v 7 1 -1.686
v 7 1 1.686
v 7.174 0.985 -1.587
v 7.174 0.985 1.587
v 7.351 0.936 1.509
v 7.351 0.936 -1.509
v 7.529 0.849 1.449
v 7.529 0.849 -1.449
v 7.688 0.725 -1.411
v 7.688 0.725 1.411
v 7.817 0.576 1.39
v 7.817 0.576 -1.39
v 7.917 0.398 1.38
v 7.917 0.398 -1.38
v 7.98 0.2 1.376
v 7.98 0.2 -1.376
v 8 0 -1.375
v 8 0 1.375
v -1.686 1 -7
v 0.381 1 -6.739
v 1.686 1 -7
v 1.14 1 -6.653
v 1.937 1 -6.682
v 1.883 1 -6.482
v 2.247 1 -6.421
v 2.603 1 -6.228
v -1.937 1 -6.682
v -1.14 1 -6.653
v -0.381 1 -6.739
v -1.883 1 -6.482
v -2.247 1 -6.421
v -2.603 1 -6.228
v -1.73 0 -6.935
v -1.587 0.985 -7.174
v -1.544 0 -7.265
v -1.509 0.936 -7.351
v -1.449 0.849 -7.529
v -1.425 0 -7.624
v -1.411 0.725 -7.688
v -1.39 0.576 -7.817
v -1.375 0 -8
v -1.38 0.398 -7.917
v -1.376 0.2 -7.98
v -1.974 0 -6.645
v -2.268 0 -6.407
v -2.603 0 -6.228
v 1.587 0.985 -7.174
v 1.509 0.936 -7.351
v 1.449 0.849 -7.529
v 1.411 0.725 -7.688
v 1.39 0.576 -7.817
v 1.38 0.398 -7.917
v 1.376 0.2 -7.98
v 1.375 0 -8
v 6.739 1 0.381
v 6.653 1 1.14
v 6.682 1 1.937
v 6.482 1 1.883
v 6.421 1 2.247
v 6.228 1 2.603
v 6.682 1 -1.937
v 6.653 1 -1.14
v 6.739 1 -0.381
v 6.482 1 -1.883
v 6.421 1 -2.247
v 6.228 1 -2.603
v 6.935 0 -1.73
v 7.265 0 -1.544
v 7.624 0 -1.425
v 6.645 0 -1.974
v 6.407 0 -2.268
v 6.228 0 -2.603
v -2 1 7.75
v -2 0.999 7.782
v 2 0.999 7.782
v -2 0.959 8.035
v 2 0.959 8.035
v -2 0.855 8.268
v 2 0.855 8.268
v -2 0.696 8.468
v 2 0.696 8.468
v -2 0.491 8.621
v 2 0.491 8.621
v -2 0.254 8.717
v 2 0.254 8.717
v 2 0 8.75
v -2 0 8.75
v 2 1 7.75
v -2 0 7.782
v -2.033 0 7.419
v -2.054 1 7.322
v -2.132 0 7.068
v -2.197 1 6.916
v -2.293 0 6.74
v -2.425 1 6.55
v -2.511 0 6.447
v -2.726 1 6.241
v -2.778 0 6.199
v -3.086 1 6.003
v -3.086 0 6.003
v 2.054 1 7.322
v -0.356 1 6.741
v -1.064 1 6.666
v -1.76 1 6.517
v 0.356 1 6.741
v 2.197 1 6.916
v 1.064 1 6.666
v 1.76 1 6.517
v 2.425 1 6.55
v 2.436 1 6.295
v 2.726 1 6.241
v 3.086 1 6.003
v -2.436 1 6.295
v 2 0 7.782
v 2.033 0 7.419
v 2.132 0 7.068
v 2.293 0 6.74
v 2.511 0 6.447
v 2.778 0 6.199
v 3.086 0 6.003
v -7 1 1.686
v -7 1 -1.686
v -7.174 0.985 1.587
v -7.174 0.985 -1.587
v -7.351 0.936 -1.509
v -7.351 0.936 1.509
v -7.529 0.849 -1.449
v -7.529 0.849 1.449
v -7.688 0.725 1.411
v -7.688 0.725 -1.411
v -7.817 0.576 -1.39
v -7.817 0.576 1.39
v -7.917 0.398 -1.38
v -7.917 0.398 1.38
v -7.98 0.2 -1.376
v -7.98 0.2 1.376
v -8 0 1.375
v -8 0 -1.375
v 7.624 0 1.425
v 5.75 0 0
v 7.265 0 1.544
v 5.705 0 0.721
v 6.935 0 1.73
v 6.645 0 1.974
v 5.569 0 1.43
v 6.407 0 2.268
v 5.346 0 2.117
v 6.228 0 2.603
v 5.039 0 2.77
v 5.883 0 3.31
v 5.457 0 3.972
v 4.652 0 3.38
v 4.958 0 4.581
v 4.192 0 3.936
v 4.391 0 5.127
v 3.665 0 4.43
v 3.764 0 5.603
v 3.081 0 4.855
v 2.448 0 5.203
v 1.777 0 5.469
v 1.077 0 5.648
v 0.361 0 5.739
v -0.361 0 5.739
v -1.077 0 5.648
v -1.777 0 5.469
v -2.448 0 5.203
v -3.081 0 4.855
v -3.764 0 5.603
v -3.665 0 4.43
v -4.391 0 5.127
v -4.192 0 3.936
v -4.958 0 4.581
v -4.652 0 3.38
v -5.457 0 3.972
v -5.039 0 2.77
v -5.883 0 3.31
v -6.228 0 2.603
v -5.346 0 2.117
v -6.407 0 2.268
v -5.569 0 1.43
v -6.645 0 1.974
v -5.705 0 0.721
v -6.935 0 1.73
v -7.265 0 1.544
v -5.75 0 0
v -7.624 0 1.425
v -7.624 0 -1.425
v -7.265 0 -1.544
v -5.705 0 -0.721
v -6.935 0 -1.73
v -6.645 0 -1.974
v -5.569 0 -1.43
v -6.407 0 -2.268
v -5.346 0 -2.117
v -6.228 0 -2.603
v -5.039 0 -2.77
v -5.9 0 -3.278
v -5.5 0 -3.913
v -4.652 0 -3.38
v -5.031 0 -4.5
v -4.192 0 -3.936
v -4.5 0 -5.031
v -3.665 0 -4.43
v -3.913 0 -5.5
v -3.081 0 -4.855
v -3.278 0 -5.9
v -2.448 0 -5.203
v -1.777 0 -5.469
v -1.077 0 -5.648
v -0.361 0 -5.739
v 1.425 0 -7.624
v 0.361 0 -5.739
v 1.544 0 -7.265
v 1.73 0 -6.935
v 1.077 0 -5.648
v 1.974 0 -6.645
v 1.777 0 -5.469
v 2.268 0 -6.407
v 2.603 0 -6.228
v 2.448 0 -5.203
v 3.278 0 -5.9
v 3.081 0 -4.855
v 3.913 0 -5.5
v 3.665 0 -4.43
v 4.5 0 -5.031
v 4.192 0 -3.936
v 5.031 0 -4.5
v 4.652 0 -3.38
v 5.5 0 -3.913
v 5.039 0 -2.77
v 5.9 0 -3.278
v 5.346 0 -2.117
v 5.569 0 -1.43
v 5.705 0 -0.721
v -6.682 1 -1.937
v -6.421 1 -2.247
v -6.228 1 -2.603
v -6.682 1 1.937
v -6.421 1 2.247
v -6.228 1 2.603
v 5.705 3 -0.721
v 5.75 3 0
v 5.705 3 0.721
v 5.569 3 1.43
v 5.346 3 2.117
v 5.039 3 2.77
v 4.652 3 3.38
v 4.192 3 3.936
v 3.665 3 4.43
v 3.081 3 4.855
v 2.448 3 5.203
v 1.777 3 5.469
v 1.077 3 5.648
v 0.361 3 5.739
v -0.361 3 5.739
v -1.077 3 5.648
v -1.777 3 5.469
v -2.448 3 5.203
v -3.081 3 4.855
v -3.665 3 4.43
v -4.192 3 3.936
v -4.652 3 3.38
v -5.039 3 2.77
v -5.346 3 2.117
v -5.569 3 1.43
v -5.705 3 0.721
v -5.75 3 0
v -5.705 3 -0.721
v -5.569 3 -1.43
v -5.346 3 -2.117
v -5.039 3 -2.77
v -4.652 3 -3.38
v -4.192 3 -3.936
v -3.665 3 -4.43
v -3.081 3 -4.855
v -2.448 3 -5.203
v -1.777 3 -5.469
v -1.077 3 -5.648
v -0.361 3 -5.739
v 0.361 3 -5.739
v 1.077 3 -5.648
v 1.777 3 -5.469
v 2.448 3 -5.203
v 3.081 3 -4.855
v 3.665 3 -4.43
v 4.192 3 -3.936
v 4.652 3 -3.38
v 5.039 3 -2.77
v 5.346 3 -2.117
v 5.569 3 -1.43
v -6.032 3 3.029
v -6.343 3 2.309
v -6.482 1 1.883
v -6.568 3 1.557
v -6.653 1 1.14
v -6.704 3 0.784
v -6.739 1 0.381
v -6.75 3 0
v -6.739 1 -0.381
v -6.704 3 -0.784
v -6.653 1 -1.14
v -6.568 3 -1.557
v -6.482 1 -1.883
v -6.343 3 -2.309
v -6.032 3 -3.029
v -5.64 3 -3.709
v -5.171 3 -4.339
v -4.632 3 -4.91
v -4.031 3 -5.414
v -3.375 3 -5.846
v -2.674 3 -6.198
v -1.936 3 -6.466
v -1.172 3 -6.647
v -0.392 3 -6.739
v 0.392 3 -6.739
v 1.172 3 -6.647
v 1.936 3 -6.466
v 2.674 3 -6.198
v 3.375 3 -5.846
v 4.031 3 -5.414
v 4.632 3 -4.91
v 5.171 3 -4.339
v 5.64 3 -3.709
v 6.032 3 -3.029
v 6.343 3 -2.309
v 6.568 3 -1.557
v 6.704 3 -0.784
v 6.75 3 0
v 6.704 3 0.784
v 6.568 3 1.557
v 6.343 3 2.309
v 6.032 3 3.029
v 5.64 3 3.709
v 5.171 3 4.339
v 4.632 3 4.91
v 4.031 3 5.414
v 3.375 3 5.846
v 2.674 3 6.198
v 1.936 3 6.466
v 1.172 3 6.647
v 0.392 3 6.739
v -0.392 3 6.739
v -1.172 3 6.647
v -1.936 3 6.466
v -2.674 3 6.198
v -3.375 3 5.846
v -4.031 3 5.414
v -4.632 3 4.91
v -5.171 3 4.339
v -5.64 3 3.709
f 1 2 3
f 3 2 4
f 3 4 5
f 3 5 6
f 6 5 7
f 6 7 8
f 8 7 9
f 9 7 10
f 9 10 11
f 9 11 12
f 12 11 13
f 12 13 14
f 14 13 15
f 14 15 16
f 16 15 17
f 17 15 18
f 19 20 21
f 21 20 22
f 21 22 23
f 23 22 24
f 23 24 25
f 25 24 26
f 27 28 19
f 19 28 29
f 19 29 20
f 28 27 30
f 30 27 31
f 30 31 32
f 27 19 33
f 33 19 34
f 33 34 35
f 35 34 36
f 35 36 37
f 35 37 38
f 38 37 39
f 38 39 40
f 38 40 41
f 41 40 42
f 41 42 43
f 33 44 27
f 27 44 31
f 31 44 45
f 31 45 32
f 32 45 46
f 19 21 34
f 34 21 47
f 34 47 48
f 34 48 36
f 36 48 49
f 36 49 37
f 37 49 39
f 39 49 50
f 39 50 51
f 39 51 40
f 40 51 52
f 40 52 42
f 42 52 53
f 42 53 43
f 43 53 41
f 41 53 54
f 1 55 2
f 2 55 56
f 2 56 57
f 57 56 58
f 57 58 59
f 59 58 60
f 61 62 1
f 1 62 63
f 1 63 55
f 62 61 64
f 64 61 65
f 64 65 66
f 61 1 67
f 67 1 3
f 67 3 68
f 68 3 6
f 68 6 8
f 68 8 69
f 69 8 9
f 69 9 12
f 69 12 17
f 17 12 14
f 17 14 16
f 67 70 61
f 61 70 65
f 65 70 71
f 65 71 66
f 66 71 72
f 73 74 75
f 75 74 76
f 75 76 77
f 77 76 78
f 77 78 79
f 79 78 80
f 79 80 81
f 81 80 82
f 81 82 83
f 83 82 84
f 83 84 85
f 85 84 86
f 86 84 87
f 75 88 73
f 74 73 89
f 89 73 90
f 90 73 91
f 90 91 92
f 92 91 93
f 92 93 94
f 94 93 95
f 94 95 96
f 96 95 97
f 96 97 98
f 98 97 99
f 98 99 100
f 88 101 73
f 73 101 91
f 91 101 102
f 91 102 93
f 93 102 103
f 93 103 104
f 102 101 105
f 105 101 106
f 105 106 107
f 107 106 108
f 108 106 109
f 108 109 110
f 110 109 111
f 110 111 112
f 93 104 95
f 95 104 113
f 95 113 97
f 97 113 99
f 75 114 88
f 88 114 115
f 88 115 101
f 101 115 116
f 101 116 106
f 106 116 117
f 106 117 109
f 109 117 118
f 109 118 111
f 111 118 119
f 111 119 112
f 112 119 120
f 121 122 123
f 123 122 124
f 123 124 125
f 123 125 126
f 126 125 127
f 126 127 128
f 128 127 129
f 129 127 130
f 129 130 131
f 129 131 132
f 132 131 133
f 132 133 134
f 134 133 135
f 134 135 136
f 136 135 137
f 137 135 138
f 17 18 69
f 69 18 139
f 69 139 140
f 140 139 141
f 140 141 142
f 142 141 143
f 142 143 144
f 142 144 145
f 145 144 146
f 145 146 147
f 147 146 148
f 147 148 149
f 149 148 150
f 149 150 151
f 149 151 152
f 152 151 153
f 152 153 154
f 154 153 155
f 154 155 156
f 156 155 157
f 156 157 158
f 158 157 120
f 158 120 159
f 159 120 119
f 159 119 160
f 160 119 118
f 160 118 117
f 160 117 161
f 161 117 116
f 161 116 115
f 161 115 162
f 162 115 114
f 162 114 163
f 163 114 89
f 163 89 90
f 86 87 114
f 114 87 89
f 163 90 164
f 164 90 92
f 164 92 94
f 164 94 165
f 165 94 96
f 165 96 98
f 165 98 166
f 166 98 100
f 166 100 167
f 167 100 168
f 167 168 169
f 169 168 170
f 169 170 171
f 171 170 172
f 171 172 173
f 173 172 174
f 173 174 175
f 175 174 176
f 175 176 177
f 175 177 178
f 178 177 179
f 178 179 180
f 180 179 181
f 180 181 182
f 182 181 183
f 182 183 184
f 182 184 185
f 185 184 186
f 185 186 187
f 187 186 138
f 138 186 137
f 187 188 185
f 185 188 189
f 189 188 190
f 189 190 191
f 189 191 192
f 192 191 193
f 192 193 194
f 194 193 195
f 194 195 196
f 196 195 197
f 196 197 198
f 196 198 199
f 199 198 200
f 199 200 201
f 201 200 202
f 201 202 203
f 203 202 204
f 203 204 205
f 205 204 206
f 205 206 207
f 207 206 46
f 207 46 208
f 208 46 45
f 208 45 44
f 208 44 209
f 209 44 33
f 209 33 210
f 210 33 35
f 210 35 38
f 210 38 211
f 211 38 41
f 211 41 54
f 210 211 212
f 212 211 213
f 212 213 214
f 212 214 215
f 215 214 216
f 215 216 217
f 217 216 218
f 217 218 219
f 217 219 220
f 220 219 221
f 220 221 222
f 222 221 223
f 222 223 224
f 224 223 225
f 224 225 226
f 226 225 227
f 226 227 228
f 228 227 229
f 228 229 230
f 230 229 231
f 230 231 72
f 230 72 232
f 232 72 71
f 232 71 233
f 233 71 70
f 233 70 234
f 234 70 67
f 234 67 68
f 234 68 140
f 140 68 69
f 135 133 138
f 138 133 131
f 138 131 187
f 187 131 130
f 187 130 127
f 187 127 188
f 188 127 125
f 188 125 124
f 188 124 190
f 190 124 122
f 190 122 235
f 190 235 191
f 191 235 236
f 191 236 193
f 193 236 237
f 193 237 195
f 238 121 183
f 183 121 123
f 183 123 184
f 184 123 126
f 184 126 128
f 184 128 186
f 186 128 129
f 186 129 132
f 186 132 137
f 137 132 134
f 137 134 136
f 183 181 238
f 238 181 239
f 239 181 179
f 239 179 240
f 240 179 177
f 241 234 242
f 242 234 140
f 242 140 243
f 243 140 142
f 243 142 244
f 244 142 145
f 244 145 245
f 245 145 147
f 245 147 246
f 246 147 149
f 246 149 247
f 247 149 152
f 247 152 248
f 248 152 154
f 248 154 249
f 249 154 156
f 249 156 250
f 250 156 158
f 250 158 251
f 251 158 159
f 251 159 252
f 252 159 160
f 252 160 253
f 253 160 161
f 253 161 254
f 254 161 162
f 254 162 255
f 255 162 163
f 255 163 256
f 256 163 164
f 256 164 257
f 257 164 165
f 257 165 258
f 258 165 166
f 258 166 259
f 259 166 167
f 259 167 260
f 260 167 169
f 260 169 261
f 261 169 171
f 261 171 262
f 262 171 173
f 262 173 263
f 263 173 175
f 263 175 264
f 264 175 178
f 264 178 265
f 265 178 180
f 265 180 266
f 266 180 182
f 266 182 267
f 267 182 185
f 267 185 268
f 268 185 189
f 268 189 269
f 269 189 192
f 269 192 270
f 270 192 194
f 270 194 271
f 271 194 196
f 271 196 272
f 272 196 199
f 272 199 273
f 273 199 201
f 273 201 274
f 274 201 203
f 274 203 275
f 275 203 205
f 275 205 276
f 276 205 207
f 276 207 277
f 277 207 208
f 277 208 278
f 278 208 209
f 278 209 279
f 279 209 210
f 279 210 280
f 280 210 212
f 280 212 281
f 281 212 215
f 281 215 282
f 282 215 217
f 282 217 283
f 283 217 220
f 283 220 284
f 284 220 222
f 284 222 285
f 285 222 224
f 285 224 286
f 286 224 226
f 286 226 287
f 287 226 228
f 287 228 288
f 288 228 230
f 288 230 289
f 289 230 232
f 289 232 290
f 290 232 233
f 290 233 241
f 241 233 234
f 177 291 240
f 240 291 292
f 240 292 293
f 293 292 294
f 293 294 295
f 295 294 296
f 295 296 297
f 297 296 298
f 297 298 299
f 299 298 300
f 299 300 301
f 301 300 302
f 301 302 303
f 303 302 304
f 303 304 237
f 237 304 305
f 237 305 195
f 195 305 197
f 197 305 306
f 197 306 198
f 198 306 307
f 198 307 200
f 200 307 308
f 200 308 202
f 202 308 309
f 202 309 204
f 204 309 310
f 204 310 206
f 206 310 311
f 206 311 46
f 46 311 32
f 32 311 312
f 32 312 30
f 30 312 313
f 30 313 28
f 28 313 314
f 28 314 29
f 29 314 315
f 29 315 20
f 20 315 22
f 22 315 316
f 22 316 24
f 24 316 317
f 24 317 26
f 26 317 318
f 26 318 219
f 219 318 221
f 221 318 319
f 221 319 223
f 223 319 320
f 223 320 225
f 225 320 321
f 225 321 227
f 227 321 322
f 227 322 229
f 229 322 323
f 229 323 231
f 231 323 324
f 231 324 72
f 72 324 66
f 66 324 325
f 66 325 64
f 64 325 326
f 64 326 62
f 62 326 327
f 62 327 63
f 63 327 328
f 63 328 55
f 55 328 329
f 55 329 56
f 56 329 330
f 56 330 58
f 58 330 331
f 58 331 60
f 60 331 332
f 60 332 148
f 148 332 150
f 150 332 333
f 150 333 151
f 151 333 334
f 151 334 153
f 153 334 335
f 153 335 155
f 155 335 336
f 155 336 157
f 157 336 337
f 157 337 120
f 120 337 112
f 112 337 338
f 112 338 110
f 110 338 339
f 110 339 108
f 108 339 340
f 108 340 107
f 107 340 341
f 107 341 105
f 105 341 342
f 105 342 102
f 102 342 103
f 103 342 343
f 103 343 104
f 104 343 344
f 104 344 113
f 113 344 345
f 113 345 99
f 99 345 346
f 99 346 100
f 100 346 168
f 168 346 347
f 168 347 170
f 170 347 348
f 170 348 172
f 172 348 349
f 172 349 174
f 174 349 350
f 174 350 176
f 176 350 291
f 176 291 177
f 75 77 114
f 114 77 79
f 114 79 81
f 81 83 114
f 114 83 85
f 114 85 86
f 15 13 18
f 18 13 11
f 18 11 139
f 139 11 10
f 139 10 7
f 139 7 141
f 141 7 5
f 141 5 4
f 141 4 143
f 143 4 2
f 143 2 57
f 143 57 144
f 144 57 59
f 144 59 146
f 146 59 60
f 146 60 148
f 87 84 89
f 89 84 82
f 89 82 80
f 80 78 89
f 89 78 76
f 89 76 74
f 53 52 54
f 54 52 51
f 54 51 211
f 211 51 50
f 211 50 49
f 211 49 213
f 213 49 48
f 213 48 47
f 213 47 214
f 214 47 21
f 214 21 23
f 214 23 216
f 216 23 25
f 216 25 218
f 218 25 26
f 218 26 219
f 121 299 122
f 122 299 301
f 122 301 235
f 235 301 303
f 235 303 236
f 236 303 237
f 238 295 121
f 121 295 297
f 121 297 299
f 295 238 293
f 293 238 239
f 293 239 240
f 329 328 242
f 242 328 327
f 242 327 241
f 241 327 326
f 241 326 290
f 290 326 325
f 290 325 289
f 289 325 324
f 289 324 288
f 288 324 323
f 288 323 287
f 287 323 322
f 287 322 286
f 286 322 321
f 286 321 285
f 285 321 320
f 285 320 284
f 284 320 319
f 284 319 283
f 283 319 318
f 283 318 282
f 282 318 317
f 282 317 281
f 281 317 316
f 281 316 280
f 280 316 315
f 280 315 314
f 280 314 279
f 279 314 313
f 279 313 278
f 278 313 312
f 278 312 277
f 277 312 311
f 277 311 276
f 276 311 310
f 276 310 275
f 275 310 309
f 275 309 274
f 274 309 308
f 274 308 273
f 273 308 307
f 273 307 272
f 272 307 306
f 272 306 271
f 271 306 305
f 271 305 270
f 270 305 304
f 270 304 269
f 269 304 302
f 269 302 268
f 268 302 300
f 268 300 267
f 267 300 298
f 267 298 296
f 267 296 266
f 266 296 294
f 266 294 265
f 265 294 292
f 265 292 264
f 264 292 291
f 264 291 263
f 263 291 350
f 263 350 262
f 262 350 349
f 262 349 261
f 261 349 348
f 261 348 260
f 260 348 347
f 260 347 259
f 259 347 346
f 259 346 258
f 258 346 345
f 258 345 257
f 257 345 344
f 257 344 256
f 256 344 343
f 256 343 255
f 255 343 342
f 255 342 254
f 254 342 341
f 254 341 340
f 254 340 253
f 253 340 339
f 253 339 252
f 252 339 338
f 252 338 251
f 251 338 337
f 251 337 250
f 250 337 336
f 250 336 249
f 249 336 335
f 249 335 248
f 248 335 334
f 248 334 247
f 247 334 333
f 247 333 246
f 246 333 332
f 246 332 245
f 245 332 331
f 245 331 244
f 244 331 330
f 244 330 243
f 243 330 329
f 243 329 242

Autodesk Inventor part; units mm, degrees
ref_plane "XZ Plane" through (0, 0, 0) normal (0, 1, 0) x (-1, 0, 0)
sketch "Sketch1" plane through (0, 0, 0) normal (0, 1, 0) x (-1, 0, 0)
  circle A0 centre (0, 0) radius 5.75
  circle A1 centre (0, 0) radius 6.75
  dimension "d0" = 11.5
  dimension "d1" = 13.5
extrude "Extrusion1" add sketch "Sketch1" along normal blind 2
ref_plane "Work Plane1" through (0, 0, 5.75) normal (0, 0, 1) x (1, 0, 0)
ref_plane "Work Plane2" through (0, 0, -5.75) normal (0, 0, 1) x (1, 0, 0)
ref_plane "Work Plane3" through (5.75, 0, 0) normal (1, 0, 0) x (0, 1, 0)
ref_plane "Work Plane4" through (-5.75, 0, 0) normal (1, 0, 0) x (0, 1, 0)
sketch "Sketch4" plane through (0, 0, 5.75) normal (0, 0, 1) x (1, 0, 0)
  line L0 (6.75, 2) -> (-6.75, 2) projected
  line L1 (6.75, 0) -> (-6.75, 0) projected
  line L2 (-2, 2) -> (2, 2)
  line L3 (2, 2) -> (2, 0)
  line L4 (2, 0) -> (-2, 0)
  line L5 (-2, 0) -> (-2, 2)
  point P0 (0, 0)
  point P1 (0, 2)
  point P2 (-2, 0)
  dimension "d9" = 4
  dimension "d10" = 2
extrude "Extrusion3" add sketch "Sketch4" along normal blind 3
ref_plane "Work Plane5" through (0, 0, 0) normal (0, 0, 1) x (1, 0, 0)
sketch "Sketch6" plane through (-5.75, 0, 0) normal (1, 0, 0) x (0, 1, 0)
  line L0 (2, 5.75) -> (2, -5.75) projected
  line L1 (2, -1.375) -> (-1, -1.375)
  line L2 (-1, -1.375) -> (-1, 1.375)
  line L3 (-1, 1.375) -> (2, 1.375)
  line L4 (2, 1.375) -> (2, -1.375)
  line L5 (-1.6, 0) -> (2.6, 0) projected
  line L6 (0, -6.75) -> (0, 6.4469) projected
  point P0 (0, 0)
  point P1 (2, 1.375)
  dimension "d19" = 2.75
  dimension "d20" = 1.375
  dimension "d21" = 1
extrude "Extrusion5" add sketch "Sketch6" against normal blind 2.25
sketch "Sketch7" plane through (-5.75, -1, -1.375) normal (0, -1, 0) x (1, 0, 0)
  line L0 (0, 2.75) -> (0, 0) projected
  line L1 (0, 0.525) -> (-1.7, 0.525)
  line L2 (-1.7, 0.525) -> (-1.7, 2.225)
  line L3 (-1.7, 2.225) -> (0, 2.225)
  line L4 (0, 2.225) -> (0, 0.525)
  line L5 (-5.2, 1.375) -> (15.45, 1.375) projected
  circle A0 centre (5.75, 1.375) radius 6.25
  circle A1 centre (5.75, 1.375) radius 5.75
  point P0 (-0.4419, 0.525)
  point P1 (-0.4419, 2.225)
  dimension "d24" = 1.7
  dimension "d25" = 1.7
  dimension "d26" = 0.85
extrude "Extrusion6" cut sketch "Sketch7" against normal blind 1
pattern_circular "Circular Pattern1" count 3 over 180 about axis through (0, 0, 0) along (0, -1, 0) of "Extrusion5", "Extrusion6"
sketch "Sketch8" plane through (0, 2, 0) normal (0, 1, 0) x (1, 0, 0)
  circle A0 centre (0, 0) radius 5.75
  circle A1 centre (0, 0) radius 5.75 projected
  circle A2 centre (0, 0) radius 10
  dimension "d40" = 20
  dimension "d41" = 11.5
extrude "Extrusion7" cut sketch "Sketch8" against normal blind 1
sketch "Sketch9" plane through (0, 1, 0) normal (0, 1, 0) x (1, 0, 0)
  circle A0 centre (0, 0) radius 5.75
  circle A1 centre (0, 0) radius 5.75 projected
  circle A2 centre (0, 0) radius 6.75
  dimension "d38" = 13.5
  dimension "d39" = 11.5
extrude "Extrusion8" add sketch "Sketch9" along normal blind 2
fillet "Fillet1" radius 2 8 edges at (-6.6085, 0.5, -1.375) (-1.375, 0.5, -6.6085) (1.375, 0.5, -6.6085) (6.6085, 0.5, -1.375) (6.6085, 0.5, 1.375) (2, 0.5, 6.4469) (-2, 0.5, 6.4469) (-6.6085, 0.5, 1.375)
fillet "Fillet2" radius 1 4 edges at (-8, 1, 0) (0, 1, 8.75) (8, 1, 0) (0, 1, -8)
sketch "Sketch10" plane through (0, 0, 0) normal (0, -1, 0) x (1, 0, 0)
  circle A0 centre (0, 0) radius 9.4017
extrude "Extrusion9" cut sketch "Sketch10" along normal blind 5
equation "\"d20\" = 0.5 * d19"
equation "\"d26\" = 0.5 * d25"
properties part number "Widefield_Headplate_Adapter_Flat"
